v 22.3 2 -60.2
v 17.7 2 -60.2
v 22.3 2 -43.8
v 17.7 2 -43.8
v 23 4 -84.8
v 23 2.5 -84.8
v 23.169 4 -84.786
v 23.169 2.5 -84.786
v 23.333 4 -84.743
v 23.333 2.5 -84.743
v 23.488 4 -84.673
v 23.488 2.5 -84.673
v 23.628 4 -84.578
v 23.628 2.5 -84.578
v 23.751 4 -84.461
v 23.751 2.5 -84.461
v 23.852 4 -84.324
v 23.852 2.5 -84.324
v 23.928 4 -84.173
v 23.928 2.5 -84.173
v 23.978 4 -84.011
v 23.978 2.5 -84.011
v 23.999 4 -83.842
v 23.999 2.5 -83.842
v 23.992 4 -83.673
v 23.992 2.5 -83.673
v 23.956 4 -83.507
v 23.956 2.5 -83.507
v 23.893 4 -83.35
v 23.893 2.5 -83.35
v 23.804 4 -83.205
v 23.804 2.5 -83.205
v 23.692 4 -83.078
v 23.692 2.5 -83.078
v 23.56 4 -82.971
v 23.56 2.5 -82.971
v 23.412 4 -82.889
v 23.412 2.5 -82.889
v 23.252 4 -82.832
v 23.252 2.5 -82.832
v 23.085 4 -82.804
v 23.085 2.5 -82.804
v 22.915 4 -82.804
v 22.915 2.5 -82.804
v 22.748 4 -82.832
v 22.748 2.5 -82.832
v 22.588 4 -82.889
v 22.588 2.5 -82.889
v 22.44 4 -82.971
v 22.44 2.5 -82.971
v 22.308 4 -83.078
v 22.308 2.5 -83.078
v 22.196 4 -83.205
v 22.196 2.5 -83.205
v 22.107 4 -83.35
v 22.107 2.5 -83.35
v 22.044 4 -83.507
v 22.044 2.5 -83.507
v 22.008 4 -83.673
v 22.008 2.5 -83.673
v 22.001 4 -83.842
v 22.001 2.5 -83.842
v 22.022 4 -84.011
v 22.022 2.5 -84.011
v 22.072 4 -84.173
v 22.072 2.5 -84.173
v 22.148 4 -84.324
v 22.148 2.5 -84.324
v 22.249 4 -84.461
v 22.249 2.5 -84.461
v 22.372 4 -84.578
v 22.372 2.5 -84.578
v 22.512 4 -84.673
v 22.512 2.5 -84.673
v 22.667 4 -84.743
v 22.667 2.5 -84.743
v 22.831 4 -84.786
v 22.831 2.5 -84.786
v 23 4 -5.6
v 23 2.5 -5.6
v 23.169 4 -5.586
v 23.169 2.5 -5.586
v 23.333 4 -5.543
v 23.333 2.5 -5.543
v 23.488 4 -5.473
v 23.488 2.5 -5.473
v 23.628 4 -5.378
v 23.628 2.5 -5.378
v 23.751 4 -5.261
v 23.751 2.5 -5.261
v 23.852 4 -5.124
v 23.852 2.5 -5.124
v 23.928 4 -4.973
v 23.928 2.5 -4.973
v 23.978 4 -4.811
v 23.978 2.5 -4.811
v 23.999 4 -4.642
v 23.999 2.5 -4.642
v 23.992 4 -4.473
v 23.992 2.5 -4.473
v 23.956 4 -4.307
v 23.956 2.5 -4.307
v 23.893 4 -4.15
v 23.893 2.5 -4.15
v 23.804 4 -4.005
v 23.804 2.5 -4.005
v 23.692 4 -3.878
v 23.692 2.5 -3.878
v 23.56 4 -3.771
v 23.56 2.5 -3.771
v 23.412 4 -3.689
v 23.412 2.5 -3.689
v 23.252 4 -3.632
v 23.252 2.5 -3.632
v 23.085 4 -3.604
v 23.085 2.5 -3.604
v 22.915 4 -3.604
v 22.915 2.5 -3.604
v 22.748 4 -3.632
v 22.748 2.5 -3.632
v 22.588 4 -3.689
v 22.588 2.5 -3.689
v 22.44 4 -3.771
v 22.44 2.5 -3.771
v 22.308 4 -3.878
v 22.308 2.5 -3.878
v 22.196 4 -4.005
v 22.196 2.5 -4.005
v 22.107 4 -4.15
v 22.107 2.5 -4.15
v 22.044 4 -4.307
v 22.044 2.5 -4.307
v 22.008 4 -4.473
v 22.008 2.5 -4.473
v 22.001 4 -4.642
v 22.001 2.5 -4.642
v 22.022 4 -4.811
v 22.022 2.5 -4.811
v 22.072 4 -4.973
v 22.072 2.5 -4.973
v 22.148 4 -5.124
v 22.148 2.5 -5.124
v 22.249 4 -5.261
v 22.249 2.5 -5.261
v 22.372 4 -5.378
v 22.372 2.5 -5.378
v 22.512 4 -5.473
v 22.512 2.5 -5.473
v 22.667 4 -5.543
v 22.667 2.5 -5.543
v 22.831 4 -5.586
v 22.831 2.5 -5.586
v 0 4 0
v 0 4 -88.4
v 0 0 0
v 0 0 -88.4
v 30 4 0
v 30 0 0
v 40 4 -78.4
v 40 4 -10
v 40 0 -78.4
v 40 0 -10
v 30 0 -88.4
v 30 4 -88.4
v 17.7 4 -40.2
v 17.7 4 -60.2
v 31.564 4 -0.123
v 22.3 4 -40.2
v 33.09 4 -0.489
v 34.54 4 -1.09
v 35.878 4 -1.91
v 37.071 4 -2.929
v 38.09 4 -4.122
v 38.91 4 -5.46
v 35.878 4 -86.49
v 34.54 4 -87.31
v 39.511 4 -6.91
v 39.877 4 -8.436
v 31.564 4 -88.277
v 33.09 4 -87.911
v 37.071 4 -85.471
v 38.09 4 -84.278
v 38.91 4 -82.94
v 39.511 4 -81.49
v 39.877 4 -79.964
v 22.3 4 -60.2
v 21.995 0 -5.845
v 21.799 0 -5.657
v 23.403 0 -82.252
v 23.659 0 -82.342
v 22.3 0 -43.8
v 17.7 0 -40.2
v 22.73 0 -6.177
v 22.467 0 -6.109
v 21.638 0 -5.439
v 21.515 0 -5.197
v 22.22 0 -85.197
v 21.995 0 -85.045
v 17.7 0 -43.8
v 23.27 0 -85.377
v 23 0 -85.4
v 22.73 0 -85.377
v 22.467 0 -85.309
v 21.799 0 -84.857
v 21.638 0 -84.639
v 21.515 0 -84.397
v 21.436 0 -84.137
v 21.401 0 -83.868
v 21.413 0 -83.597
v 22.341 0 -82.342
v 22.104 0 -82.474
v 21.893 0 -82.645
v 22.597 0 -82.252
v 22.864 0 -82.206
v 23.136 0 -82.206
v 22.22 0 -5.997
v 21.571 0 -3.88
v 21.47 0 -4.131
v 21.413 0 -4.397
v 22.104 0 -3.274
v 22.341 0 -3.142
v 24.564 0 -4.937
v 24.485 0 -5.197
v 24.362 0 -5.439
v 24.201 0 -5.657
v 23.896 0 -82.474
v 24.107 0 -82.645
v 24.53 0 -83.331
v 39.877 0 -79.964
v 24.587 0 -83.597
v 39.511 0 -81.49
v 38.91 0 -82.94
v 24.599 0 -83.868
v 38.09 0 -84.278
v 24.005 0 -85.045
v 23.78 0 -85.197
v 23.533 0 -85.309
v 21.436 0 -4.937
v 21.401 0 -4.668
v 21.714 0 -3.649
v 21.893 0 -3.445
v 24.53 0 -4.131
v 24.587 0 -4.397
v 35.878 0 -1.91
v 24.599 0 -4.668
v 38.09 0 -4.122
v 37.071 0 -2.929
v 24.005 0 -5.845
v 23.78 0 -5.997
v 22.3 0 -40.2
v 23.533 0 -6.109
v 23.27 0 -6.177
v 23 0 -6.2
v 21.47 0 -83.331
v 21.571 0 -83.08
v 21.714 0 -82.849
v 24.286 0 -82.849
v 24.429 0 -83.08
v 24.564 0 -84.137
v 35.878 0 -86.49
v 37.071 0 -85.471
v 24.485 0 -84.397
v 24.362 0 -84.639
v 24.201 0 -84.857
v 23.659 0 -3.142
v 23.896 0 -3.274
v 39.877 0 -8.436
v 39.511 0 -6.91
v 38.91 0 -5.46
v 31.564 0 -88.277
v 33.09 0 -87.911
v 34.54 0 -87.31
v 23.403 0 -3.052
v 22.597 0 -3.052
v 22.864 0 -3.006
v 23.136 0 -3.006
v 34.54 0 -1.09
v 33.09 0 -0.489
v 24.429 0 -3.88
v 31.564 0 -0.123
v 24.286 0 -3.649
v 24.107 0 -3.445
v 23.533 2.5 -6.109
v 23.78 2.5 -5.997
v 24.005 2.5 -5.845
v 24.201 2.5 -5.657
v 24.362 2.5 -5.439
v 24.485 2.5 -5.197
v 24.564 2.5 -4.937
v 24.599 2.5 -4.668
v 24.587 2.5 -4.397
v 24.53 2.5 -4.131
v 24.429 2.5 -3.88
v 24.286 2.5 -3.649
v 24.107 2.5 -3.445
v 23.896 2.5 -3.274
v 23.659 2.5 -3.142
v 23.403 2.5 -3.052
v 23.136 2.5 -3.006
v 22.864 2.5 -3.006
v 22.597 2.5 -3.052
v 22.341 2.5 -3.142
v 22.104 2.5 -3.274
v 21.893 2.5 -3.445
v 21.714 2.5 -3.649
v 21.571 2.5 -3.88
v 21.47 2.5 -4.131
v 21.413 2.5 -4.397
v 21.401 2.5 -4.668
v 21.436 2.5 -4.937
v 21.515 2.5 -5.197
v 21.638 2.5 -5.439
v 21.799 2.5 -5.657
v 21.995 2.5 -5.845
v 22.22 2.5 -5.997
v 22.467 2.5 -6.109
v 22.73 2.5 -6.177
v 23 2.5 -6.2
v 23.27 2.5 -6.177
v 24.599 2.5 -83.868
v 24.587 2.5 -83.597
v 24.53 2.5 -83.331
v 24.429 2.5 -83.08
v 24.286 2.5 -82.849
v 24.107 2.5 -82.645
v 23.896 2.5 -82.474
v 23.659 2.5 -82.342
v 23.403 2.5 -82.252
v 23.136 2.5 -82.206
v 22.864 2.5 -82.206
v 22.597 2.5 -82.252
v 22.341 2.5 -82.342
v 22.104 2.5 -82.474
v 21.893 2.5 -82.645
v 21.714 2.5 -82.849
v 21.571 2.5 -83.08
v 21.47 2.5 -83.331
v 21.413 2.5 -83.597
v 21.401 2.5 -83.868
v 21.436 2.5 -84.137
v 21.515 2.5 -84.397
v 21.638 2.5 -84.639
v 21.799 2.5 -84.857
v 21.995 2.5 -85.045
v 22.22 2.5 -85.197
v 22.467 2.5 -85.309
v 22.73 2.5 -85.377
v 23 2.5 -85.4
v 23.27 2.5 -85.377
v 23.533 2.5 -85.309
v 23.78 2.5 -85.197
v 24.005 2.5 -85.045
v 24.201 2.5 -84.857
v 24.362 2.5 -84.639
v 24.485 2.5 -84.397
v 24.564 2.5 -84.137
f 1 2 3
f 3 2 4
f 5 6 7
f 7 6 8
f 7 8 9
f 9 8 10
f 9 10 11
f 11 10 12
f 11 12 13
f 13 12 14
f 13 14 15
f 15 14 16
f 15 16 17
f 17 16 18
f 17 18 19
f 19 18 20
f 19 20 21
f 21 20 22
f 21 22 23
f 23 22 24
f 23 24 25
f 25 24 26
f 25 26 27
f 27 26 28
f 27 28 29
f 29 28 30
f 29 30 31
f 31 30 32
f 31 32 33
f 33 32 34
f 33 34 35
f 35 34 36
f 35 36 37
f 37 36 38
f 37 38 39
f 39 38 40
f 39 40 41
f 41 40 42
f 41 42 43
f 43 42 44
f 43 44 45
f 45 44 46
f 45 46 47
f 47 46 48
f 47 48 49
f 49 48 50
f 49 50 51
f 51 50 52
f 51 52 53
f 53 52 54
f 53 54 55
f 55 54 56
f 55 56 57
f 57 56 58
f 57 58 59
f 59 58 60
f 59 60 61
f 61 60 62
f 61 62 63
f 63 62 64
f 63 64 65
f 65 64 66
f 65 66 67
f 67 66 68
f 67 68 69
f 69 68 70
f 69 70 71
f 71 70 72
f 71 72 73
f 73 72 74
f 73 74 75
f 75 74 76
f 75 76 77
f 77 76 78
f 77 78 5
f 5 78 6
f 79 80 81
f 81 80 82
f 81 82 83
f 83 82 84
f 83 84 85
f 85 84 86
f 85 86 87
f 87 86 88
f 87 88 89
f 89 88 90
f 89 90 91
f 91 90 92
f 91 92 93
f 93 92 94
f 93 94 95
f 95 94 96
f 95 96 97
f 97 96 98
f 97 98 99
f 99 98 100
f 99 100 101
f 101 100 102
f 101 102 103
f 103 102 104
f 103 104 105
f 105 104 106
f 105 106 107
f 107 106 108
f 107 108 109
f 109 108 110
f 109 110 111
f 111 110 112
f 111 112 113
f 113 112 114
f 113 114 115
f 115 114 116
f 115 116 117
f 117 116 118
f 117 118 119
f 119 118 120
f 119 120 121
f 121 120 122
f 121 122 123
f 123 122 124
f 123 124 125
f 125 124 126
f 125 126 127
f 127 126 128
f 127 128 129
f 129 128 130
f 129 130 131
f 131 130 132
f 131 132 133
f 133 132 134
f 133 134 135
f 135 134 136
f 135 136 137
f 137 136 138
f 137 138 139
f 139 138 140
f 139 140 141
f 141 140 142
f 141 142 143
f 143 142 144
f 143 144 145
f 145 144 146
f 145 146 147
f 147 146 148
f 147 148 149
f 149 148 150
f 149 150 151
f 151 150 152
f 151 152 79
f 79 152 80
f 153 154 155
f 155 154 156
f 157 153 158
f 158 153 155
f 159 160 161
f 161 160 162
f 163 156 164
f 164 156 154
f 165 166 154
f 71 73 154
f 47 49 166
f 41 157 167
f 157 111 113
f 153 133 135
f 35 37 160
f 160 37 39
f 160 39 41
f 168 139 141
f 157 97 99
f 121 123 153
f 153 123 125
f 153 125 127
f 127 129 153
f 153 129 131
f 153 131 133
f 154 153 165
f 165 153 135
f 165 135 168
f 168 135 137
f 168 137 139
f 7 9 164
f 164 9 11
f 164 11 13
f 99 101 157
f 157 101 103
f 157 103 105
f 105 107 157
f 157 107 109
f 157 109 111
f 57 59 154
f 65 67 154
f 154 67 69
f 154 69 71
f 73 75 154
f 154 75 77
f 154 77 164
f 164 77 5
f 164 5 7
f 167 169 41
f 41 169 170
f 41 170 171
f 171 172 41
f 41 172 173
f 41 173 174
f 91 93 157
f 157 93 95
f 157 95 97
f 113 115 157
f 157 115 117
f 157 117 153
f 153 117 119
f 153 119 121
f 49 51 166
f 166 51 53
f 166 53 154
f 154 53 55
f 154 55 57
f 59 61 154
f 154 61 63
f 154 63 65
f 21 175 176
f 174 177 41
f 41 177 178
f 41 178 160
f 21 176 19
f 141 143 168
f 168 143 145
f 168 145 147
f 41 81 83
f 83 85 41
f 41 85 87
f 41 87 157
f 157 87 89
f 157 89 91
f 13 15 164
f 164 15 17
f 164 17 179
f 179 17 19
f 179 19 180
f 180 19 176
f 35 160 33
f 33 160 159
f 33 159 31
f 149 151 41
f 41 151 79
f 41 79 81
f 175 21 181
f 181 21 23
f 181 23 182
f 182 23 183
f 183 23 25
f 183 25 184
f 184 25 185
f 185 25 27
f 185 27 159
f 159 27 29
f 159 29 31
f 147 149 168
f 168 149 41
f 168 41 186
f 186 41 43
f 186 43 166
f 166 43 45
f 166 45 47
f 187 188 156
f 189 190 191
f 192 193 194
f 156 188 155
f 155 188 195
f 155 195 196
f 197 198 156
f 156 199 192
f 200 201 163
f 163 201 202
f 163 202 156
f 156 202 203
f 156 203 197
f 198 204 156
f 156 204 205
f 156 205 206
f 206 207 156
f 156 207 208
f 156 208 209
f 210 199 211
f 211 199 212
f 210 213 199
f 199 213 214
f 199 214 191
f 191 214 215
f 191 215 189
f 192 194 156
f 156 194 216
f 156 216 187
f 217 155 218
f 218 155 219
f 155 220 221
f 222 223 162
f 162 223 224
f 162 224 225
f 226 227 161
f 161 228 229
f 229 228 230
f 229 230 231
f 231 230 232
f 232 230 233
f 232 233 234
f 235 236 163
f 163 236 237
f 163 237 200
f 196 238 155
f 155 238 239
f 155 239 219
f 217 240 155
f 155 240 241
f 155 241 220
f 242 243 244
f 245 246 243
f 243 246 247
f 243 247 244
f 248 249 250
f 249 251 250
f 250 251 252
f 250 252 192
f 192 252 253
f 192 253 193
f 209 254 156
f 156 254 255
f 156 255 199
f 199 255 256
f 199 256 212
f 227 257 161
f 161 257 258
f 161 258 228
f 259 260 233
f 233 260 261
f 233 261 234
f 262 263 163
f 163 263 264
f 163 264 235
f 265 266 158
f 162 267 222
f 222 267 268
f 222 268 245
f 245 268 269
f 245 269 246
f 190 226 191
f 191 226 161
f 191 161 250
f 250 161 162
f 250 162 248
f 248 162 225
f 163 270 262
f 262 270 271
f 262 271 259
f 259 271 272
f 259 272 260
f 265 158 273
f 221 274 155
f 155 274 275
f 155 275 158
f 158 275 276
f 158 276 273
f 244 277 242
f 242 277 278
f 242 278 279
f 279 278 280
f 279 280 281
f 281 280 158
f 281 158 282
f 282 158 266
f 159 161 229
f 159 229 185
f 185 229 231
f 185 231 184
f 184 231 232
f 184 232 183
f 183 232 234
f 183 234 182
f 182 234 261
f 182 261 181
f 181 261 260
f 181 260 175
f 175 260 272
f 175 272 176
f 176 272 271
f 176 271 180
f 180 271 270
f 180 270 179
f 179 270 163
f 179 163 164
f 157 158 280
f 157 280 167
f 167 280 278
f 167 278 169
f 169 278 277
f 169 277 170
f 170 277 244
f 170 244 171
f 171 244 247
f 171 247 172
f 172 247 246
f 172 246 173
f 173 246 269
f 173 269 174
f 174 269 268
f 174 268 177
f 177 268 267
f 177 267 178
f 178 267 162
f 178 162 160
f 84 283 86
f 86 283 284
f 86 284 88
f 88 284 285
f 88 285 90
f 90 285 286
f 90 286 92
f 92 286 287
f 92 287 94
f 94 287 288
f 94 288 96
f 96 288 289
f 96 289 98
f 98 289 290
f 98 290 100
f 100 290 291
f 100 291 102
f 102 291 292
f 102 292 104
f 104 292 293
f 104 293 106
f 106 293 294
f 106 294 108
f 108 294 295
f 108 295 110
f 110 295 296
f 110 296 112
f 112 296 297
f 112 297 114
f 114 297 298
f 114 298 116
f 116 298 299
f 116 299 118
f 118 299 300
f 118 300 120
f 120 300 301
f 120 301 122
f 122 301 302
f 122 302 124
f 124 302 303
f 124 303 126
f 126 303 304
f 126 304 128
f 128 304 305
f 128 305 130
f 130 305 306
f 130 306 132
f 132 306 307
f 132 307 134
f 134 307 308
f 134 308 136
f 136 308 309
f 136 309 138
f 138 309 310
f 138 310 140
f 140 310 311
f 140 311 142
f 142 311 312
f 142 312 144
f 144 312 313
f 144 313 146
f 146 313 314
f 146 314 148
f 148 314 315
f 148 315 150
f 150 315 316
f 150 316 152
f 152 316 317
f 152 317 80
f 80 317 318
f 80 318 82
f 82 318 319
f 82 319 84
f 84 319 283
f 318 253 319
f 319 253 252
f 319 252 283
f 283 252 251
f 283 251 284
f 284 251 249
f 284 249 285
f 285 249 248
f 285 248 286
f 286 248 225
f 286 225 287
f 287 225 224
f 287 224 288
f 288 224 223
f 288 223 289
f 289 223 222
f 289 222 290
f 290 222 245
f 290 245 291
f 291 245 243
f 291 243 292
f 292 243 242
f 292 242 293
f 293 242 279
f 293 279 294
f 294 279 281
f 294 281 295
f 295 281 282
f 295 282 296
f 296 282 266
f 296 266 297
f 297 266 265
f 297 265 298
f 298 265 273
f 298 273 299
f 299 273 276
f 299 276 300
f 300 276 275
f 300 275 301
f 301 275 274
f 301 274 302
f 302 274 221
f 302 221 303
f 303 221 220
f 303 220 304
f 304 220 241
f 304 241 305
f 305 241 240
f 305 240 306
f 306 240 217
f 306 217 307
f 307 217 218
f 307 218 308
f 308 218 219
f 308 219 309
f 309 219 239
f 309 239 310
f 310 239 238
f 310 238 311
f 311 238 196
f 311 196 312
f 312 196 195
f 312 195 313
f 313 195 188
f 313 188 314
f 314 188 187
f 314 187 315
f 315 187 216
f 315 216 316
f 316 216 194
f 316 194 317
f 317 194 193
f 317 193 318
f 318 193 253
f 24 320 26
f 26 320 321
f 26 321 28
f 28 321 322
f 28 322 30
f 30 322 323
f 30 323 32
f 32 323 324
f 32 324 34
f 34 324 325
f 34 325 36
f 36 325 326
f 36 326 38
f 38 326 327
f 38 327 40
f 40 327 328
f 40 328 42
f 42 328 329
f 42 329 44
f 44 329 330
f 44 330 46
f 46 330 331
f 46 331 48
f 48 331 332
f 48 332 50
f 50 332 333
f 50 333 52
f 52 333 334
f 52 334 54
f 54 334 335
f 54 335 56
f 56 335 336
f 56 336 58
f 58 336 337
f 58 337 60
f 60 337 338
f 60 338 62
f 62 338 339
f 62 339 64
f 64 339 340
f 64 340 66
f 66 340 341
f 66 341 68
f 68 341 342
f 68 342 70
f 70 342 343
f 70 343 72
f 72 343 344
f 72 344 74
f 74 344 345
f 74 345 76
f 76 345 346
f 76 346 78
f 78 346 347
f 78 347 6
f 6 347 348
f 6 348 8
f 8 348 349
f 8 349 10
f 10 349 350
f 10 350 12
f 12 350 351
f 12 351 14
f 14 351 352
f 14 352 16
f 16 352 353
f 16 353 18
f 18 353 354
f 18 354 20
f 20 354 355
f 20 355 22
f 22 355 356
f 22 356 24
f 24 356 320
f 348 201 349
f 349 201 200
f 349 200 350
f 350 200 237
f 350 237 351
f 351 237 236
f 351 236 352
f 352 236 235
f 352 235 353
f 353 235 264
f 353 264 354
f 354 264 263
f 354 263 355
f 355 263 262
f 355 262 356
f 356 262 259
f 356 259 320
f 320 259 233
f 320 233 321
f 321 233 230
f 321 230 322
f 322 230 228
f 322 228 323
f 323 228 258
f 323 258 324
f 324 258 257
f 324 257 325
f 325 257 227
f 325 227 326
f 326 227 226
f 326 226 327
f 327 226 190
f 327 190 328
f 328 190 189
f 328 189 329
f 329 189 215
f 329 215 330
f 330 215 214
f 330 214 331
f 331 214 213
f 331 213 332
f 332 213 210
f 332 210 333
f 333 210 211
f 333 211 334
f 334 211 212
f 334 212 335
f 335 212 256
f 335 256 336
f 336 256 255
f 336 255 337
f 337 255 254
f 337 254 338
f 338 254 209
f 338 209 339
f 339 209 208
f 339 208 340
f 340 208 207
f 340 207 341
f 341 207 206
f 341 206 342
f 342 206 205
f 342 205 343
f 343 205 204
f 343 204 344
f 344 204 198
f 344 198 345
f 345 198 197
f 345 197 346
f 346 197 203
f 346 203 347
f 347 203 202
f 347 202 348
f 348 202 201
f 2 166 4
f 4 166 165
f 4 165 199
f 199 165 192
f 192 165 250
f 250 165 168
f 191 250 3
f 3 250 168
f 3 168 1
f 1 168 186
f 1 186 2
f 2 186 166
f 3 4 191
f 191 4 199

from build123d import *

# Parameters (mm, degrees)
SKETCH1_W           = 40
SKETCH1_H           = 88.4
BOSS_EXTRUDE1_DEPTH = 4
FILLET1_R           = 10
SKETCH3_R           = 1
CUT_EXTRUDE1_DEPTH  = 10
SKETCH5_R           = 1.6
CUT_EXTRUDE2_DEPTH  = 2.5
CUT_EXTRUDE3_START  = -2
SKETCH6_W           = 4.6
SKETCH6_H           = 20
CUT_EXTRUDE3_DEPTH  = 10
SKETCH8_W           = 4.6
SKETCH8_H           = 3.6
CUT_EXTRUDE7_DEPTH  = 11.5


with BuildPart() as part:
    # Sketch1 → Boss-Extrude1 (new body)
    with BuildSketch(Plane(origin=(0, 0, 0), x_dir=(1, 0, 0), z_dir=(0, 1, 0))):
        with Locations((20, 44.2)):
            Rectangle(SKETCH1_W, SKETCH1_H)
    extrude(amount=BOSS_EXTRUDE1_DEPTH)

    # Fillet1
    fillet1_edges = [part.edges().sort_by_distance(p)[0] for p in [
        (40, 2, -88.4),
        (40, 2, 0),
    ]]
    fillet(fillet1_edges, radius=FILLET1_R)

    # Sketch3 → Cut-Extrude1 (cut)
    with BuildSketch(Plane.XZ):
        with Locations(Location((23, -4.6, 0), (0, 0, 270))):
            Circle(SKETCH3_R)
        with Locations(Location((23, -83.8, 0), (0, 0, 270))):
            Circle(SKETCH3_R)
    extrude(amount=-CUT_EXTRUDE1_DEPTH, mode=Mode.SUBTRACT)

    # Sketch5 → Cut-Extrude2 (cut)
    with BuildSketch(Plane.XZ):
        with Locations(Location((23, -4.6, 0), (0, 0, 270))):
            Circle(SKETCH5_R)
        with Locations(Location((23, -83.8, 0), (0, 0, 270))):
            Circle(SKETCH5_R)
    extrude(amount=-CUT_EXTRUDE2_DEPTH, mode=Mode.SUBTRACT)

    # Sketch6 → Cut-Extrude3 (cut)
    with BuildSketch(Plane.XZ.offset(CUT_EXTRUDE3_START)):
        with Locations((20, -50.2)):
            Rectangle(SKETCH6_W, SKETCH6_H)
    extrude(amount=-CUT_EXTRUDE3_DEPTH, mode=Mode.SUBTRACT)

    # Sketch8 → Cut-Extrude7 (cut)
    with BuildSketch(Plane(origin=(0, 2, 0), x_dir=(1, 0, 0), z_dir=(0, 1, 0))):
        with Locations((20, 42)):
            Rectangle(SKETCH8_W, SKETCH8_H)
    extrude(amount=-CUT_EXTRUDE7_DEPTH, mode=Mode.SUBTRACT)


solid = part.part
